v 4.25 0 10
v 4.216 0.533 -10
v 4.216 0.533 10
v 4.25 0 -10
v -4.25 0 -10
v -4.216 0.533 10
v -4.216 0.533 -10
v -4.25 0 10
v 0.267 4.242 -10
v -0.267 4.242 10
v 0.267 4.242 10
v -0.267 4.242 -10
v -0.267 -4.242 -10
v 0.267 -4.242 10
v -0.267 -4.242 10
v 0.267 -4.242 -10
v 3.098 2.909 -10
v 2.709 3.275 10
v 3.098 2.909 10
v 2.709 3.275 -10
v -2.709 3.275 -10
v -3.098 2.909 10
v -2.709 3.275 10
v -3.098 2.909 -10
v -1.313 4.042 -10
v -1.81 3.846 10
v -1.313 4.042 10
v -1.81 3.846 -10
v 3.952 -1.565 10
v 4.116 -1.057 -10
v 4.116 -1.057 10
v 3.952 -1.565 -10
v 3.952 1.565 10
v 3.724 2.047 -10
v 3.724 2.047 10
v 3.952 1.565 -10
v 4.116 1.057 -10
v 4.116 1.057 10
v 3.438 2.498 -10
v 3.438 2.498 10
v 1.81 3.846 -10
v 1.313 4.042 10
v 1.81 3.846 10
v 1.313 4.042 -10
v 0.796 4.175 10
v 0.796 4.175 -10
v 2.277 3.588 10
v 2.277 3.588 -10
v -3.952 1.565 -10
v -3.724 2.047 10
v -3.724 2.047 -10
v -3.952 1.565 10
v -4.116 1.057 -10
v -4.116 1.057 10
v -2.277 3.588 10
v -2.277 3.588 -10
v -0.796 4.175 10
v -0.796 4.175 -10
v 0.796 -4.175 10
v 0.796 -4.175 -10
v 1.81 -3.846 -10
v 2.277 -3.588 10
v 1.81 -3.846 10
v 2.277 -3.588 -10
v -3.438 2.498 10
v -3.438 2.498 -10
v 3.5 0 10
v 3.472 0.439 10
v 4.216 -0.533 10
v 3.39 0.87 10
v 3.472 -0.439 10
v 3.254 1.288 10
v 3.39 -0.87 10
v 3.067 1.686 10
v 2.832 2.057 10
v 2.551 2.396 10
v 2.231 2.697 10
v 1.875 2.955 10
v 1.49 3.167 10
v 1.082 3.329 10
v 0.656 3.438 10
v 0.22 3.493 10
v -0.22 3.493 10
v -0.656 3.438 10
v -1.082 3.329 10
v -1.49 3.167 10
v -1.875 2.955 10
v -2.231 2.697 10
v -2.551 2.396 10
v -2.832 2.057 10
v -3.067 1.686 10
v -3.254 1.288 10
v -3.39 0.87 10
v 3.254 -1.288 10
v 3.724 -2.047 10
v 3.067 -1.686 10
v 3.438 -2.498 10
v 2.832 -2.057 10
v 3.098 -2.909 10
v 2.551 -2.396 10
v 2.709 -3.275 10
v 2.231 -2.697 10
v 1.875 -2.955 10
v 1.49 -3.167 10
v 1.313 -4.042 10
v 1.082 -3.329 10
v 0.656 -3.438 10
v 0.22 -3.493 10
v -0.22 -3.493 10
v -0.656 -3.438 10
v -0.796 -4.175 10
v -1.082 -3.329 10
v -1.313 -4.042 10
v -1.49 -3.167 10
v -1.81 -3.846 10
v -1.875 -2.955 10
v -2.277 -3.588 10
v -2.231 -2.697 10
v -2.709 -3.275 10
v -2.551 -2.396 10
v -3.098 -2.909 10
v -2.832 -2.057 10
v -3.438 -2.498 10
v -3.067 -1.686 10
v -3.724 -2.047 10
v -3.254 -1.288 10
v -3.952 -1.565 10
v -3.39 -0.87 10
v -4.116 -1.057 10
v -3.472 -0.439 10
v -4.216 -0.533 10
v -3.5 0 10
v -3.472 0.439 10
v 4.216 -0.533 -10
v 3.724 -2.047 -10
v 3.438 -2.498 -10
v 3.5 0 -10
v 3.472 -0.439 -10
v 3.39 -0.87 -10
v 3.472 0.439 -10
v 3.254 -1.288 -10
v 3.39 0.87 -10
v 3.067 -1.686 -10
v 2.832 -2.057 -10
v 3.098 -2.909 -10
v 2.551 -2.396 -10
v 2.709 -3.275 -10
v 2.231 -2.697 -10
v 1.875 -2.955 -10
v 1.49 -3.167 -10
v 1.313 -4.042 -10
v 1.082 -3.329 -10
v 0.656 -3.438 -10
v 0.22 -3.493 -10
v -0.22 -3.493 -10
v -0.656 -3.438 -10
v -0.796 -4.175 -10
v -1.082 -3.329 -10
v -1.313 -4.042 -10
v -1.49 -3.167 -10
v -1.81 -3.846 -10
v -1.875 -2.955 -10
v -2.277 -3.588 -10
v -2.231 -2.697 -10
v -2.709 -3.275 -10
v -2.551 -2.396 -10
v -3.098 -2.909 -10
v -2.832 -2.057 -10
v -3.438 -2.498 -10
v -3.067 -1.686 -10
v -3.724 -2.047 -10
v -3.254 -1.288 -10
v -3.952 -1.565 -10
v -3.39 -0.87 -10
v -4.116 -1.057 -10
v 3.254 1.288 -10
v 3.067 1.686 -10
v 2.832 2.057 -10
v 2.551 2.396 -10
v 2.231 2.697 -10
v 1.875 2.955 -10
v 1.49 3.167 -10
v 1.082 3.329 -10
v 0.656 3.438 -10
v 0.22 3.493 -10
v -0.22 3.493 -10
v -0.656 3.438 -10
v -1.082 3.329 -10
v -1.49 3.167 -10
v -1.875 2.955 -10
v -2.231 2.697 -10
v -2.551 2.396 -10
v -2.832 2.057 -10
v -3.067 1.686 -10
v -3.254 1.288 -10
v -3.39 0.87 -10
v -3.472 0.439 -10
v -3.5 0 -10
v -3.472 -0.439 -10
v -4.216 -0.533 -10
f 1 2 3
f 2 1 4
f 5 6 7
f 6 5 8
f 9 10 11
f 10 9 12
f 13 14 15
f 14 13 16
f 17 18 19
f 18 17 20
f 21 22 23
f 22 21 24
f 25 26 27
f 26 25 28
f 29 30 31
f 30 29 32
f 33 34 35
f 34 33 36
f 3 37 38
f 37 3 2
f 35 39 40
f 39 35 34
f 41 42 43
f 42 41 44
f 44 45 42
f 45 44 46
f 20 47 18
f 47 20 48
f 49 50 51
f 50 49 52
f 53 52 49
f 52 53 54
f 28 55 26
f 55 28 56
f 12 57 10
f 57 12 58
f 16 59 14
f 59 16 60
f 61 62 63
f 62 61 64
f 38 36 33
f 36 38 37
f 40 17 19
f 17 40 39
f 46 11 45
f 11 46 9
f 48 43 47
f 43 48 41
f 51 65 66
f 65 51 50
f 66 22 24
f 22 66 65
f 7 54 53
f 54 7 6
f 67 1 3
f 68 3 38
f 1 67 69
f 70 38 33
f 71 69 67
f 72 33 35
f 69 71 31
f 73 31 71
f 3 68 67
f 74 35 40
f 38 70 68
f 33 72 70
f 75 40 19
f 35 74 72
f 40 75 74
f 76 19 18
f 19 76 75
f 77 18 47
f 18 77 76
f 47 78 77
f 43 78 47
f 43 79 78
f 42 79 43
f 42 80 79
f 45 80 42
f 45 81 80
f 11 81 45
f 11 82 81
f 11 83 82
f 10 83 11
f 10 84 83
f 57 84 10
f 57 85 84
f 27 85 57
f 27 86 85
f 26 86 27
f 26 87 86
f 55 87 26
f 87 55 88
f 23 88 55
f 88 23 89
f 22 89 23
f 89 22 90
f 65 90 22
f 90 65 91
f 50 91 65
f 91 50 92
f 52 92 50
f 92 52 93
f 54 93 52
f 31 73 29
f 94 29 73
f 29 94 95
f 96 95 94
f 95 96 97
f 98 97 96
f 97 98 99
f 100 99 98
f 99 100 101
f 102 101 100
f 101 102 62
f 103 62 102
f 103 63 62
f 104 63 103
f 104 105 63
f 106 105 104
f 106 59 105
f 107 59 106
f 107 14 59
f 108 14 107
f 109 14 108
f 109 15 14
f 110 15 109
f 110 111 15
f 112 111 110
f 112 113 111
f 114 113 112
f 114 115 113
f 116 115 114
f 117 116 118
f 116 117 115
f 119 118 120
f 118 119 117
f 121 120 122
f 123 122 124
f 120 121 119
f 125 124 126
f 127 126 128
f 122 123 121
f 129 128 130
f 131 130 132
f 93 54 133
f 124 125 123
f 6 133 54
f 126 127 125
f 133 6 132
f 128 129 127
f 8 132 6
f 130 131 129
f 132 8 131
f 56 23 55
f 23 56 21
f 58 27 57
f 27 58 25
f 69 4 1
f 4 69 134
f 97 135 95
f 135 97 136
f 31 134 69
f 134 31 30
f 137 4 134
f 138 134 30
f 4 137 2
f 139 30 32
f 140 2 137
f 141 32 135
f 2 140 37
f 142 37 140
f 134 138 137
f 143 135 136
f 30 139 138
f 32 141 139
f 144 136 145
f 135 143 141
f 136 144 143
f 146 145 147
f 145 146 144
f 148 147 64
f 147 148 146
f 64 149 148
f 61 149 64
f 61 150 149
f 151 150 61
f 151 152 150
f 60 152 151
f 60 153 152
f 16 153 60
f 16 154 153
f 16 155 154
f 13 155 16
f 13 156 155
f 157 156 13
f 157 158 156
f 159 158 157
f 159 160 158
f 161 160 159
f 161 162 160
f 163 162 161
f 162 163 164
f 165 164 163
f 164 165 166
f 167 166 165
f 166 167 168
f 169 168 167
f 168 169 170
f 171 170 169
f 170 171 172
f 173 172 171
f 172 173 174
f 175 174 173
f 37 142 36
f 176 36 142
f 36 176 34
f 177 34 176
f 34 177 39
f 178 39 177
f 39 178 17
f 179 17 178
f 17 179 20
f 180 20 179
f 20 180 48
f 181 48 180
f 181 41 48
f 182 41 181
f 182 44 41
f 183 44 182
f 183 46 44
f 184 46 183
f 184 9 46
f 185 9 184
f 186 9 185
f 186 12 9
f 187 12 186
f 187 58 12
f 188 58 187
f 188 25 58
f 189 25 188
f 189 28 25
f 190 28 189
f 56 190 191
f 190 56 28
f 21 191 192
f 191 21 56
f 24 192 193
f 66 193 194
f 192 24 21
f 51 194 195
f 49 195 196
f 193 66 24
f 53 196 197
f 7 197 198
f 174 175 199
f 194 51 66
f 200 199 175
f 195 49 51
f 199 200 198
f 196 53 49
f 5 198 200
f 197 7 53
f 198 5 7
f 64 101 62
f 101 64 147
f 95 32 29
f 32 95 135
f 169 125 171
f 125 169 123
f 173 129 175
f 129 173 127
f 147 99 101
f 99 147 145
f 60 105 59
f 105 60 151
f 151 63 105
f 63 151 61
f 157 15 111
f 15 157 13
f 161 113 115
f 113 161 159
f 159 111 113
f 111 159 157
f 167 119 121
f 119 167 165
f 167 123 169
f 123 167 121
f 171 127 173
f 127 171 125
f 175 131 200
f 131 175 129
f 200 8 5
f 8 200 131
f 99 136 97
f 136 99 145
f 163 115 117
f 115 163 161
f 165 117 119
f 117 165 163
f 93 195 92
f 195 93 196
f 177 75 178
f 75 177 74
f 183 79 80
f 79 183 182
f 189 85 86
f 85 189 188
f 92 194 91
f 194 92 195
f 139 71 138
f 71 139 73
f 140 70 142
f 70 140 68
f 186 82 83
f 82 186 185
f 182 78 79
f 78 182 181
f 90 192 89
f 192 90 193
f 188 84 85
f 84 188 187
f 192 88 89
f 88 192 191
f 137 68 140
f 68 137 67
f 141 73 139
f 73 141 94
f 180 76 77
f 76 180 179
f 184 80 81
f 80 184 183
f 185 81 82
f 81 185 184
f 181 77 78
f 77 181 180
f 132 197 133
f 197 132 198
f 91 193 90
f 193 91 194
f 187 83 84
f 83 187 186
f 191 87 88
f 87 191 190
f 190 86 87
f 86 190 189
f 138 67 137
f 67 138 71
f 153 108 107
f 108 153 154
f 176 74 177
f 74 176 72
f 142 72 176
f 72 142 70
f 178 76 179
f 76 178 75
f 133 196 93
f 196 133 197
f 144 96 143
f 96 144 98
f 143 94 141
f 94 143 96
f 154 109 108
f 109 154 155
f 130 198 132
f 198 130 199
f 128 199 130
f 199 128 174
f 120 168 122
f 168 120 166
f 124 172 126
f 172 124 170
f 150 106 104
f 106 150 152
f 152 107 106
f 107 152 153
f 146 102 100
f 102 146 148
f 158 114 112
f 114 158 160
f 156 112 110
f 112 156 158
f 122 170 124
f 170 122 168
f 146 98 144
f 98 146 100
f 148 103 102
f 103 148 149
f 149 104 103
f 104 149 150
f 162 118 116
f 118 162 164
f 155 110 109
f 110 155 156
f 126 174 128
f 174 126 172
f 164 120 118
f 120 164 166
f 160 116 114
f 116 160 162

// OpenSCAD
$fn = 50;


difference() {
	union() {
		translate(v = [0, 0, -10.0000000000]) {
			cylinder(h = 20, r = 4.2500000000);
		}
	}
	union() {
		translate(v = [0, 0, -100.0000000000]) {
			cylinder(h = 200, r = 3.5000000000);
		}
	}
}
